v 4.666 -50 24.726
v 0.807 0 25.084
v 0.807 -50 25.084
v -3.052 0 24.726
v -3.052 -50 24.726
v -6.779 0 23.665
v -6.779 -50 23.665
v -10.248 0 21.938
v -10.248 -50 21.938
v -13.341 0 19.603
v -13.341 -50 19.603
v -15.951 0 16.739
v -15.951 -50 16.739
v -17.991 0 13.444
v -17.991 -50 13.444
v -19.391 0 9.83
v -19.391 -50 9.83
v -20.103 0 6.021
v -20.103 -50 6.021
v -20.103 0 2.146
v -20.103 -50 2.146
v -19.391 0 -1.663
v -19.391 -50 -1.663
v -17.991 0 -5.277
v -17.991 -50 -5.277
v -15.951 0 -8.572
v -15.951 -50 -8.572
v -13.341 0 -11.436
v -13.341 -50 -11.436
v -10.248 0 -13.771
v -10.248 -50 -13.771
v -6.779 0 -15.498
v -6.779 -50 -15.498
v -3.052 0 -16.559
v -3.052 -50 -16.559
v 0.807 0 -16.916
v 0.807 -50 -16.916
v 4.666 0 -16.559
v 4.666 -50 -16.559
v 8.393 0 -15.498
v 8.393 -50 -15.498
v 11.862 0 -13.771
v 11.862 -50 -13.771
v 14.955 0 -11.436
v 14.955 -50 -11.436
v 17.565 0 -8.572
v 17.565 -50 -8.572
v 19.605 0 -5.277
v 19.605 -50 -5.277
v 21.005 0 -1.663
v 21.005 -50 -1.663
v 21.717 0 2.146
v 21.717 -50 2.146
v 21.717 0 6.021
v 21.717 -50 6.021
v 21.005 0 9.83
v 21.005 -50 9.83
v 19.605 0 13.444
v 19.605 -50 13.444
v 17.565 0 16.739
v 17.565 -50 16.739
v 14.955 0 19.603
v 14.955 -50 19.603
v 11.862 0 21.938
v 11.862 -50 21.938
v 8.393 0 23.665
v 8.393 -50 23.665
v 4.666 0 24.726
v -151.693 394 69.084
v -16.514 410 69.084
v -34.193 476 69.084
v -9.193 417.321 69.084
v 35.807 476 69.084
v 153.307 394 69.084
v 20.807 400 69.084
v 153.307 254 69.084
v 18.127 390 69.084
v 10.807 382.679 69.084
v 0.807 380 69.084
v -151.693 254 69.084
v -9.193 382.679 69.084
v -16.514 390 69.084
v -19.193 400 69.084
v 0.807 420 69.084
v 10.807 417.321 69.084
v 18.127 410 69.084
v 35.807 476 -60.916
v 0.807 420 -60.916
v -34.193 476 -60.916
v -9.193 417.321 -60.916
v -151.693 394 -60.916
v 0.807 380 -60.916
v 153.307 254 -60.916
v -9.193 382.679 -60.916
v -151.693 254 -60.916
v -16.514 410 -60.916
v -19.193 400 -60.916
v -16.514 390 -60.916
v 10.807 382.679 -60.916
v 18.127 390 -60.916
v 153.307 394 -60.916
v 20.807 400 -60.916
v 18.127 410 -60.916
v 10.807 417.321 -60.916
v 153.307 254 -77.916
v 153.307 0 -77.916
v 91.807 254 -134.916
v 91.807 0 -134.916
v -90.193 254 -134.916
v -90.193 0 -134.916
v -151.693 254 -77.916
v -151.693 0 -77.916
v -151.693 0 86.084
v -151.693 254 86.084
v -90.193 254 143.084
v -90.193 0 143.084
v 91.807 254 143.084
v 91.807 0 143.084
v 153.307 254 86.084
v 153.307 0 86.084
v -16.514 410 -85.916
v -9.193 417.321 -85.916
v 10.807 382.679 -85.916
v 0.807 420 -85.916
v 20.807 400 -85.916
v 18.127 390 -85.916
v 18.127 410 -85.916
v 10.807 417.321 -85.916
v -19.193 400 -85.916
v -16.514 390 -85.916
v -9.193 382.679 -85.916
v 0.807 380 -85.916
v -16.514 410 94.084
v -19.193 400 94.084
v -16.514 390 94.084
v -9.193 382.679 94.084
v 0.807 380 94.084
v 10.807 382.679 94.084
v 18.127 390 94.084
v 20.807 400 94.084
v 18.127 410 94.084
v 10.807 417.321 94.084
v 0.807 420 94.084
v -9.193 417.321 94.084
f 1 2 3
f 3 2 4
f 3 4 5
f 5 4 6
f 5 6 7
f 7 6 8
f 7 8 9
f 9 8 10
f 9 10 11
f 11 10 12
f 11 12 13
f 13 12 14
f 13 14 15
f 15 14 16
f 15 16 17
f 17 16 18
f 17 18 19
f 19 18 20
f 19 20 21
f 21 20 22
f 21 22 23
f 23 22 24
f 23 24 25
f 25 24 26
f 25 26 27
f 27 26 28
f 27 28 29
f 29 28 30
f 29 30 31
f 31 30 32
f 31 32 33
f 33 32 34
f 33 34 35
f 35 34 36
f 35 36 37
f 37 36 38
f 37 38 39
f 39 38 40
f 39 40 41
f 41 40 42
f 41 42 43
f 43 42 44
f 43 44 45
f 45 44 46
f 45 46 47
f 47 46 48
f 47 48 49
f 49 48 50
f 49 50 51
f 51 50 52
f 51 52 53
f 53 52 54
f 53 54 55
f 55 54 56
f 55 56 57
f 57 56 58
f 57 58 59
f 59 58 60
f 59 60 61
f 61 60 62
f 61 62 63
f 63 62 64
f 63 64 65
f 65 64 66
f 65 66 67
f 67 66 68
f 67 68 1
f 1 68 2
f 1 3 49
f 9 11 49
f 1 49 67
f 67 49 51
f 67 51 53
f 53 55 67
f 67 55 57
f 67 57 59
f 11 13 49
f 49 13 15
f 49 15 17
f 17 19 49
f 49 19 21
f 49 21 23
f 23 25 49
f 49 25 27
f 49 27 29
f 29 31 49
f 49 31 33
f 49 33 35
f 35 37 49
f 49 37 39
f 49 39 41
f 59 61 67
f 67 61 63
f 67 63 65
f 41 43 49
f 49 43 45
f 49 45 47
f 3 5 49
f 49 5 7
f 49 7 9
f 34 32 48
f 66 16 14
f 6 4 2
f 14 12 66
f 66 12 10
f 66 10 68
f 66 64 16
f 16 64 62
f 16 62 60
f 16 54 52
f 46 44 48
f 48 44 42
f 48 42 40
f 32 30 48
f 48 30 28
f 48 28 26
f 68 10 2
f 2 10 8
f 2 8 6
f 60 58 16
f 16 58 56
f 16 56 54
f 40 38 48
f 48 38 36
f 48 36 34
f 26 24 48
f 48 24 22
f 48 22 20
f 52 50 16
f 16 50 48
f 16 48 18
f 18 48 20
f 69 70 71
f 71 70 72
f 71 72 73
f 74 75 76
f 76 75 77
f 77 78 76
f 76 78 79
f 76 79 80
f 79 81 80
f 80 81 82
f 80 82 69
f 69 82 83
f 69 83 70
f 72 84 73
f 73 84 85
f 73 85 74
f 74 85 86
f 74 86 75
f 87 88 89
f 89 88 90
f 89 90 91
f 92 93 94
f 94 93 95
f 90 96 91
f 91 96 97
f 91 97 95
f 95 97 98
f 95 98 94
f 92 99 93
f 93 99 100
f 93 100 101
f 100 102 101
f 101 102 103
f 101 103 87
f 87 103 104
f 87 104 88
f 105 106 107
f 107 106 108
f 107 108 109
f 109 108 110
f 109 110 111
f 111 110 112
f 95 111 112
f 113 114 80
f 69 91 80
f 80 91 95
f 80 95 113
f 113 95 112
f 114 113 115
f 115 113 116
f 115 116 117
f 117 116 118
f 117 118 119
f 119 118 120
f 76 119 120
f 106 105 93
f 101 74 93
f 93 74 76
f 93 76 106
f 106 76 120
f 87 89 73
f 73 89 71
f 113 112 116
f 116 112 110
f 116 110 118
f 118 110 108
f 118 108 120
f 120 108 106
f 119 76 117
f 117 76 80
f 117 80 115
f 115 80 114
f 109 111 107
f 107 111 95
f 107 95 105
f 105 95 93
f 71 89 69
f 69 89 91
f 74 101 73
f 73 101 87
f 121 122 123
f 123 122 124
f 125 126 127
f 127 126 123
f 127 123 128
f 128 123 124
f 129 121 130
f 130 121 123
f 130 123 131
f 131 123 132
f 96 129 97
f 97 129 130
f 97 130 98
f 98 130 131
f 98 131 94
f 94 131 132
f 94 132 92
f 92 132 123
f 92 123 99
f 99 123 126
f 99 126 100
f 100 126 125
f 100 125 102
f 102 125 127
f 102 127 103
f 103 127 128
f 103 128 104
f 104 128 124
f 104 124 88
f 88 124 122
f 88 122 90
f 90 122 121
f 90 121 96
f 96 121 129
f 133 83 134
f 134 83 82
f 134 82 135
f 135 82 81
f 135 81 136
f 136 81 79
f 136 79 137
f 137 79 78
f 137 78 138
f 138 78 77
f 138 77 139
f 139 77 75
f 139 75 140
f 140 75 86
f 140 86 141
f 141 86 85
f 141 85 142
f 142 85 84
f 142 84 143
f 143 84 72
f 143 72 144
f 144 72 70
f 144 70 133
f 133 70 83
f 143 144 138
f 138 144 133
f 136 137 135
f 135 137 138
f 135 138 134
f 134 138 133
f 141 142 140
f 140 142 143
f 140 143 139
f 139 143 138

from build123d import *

# Parameters (mm, degrees)
EXTRUDE_1_DEPTH     = 476
SKETCH1_R           = 21
BOSS_EXTRUDE1_DEPTH = 50
SKETCH2_W           = 179.570161801
SKETCH2_H           = 266.735506726
CUT_EXTRUDE1_DEPTH  = 584.158549676
CUT_EXTRUDE2_DEPTH  = 541.087974739
SKETCH4_R           = 20
BOSS_EXTRUDE2_DEPTH = 90


with BuildPart() as part:
    # Эскиз1 → Вытянуть1 (new body)
    with BuildSketch(Plane(origin=(0, 0, 0), x_dir=(1, 0, 0), z_dir=(0, 1, 0))):
        Polygon((-151.693051502, 77.916478726), (-151.693051502, -86.083521274), (-90.193051502, -143.083521274), (91.806948498, -143.083521274), (153.306948498, -86.083521274), (153.306948498, 77.916478726), (91.806948498, 134.916478726), (-90.193051502, 134.916478726), align=None)
    extrude(amount=EXTRUDE_1_DEPTH)

    # Sketch2 → Cut-Extrude1 (cut, through all)
    with BuildSketch(Plane.ZY.offset(151.693051502)):
        with Locations((158.868602175, 387.367753363)):
            Rectangle(SKETCH2_W, SKETCH2_H)
        with Locations((-150.701559626, 387.367753363)):
            Rectangle(SKETCH2_W, SKETCH2_H)
    extrude(amount=-CUT_EXTRUDE1_DEPTH, mode=Mode.SUBTRACT)

    # Sketch3 → Cut-Extrude2 (cut, through all)
    with BuildSketch(Plane.XY.offset(69.083521274)):
        Polygon((-151.693051502, 394), (-34.193051502, 476), (-151.693051502, 476), align=None)
        Polygon((153.306948498, 476), (35.806948498, 476), (153.306948498, 394), align=None)
    extrude(amount=-CUT_EXTRUDE2_DEPTH, mode=Mode.SUBTRACT)

    # Sketch4 → Boss-Extrude2 (add, symmetric)
    with BuildSketch(Plane.XY.offset(4.083521274)):
        with Locations(Location((0.806948498, 400, 0), (0, 0, 180))):
            Circle(SKETCH4_R)
    extrude(amount=BOSS_EXTRUDE2_DEPTH, both=True)


with BuildPart() as body_2:
    # Sketch1 → Boss-Extrude1 (new body)
    with BuildSketch(Plane(origin=(0, 0, 0), x_dir=(-1, 0, 0), z_dir=(0, -1, 0))):
        with Locations(Location((-0.806948498, -4.083521274, 0), (0, 0, 90))):
            Circle(SKETCH1_R)
    extrude(amount=BOSS_EXTRUDE1_DEPTH)


solid = Compound([part.part, body_2.part])
